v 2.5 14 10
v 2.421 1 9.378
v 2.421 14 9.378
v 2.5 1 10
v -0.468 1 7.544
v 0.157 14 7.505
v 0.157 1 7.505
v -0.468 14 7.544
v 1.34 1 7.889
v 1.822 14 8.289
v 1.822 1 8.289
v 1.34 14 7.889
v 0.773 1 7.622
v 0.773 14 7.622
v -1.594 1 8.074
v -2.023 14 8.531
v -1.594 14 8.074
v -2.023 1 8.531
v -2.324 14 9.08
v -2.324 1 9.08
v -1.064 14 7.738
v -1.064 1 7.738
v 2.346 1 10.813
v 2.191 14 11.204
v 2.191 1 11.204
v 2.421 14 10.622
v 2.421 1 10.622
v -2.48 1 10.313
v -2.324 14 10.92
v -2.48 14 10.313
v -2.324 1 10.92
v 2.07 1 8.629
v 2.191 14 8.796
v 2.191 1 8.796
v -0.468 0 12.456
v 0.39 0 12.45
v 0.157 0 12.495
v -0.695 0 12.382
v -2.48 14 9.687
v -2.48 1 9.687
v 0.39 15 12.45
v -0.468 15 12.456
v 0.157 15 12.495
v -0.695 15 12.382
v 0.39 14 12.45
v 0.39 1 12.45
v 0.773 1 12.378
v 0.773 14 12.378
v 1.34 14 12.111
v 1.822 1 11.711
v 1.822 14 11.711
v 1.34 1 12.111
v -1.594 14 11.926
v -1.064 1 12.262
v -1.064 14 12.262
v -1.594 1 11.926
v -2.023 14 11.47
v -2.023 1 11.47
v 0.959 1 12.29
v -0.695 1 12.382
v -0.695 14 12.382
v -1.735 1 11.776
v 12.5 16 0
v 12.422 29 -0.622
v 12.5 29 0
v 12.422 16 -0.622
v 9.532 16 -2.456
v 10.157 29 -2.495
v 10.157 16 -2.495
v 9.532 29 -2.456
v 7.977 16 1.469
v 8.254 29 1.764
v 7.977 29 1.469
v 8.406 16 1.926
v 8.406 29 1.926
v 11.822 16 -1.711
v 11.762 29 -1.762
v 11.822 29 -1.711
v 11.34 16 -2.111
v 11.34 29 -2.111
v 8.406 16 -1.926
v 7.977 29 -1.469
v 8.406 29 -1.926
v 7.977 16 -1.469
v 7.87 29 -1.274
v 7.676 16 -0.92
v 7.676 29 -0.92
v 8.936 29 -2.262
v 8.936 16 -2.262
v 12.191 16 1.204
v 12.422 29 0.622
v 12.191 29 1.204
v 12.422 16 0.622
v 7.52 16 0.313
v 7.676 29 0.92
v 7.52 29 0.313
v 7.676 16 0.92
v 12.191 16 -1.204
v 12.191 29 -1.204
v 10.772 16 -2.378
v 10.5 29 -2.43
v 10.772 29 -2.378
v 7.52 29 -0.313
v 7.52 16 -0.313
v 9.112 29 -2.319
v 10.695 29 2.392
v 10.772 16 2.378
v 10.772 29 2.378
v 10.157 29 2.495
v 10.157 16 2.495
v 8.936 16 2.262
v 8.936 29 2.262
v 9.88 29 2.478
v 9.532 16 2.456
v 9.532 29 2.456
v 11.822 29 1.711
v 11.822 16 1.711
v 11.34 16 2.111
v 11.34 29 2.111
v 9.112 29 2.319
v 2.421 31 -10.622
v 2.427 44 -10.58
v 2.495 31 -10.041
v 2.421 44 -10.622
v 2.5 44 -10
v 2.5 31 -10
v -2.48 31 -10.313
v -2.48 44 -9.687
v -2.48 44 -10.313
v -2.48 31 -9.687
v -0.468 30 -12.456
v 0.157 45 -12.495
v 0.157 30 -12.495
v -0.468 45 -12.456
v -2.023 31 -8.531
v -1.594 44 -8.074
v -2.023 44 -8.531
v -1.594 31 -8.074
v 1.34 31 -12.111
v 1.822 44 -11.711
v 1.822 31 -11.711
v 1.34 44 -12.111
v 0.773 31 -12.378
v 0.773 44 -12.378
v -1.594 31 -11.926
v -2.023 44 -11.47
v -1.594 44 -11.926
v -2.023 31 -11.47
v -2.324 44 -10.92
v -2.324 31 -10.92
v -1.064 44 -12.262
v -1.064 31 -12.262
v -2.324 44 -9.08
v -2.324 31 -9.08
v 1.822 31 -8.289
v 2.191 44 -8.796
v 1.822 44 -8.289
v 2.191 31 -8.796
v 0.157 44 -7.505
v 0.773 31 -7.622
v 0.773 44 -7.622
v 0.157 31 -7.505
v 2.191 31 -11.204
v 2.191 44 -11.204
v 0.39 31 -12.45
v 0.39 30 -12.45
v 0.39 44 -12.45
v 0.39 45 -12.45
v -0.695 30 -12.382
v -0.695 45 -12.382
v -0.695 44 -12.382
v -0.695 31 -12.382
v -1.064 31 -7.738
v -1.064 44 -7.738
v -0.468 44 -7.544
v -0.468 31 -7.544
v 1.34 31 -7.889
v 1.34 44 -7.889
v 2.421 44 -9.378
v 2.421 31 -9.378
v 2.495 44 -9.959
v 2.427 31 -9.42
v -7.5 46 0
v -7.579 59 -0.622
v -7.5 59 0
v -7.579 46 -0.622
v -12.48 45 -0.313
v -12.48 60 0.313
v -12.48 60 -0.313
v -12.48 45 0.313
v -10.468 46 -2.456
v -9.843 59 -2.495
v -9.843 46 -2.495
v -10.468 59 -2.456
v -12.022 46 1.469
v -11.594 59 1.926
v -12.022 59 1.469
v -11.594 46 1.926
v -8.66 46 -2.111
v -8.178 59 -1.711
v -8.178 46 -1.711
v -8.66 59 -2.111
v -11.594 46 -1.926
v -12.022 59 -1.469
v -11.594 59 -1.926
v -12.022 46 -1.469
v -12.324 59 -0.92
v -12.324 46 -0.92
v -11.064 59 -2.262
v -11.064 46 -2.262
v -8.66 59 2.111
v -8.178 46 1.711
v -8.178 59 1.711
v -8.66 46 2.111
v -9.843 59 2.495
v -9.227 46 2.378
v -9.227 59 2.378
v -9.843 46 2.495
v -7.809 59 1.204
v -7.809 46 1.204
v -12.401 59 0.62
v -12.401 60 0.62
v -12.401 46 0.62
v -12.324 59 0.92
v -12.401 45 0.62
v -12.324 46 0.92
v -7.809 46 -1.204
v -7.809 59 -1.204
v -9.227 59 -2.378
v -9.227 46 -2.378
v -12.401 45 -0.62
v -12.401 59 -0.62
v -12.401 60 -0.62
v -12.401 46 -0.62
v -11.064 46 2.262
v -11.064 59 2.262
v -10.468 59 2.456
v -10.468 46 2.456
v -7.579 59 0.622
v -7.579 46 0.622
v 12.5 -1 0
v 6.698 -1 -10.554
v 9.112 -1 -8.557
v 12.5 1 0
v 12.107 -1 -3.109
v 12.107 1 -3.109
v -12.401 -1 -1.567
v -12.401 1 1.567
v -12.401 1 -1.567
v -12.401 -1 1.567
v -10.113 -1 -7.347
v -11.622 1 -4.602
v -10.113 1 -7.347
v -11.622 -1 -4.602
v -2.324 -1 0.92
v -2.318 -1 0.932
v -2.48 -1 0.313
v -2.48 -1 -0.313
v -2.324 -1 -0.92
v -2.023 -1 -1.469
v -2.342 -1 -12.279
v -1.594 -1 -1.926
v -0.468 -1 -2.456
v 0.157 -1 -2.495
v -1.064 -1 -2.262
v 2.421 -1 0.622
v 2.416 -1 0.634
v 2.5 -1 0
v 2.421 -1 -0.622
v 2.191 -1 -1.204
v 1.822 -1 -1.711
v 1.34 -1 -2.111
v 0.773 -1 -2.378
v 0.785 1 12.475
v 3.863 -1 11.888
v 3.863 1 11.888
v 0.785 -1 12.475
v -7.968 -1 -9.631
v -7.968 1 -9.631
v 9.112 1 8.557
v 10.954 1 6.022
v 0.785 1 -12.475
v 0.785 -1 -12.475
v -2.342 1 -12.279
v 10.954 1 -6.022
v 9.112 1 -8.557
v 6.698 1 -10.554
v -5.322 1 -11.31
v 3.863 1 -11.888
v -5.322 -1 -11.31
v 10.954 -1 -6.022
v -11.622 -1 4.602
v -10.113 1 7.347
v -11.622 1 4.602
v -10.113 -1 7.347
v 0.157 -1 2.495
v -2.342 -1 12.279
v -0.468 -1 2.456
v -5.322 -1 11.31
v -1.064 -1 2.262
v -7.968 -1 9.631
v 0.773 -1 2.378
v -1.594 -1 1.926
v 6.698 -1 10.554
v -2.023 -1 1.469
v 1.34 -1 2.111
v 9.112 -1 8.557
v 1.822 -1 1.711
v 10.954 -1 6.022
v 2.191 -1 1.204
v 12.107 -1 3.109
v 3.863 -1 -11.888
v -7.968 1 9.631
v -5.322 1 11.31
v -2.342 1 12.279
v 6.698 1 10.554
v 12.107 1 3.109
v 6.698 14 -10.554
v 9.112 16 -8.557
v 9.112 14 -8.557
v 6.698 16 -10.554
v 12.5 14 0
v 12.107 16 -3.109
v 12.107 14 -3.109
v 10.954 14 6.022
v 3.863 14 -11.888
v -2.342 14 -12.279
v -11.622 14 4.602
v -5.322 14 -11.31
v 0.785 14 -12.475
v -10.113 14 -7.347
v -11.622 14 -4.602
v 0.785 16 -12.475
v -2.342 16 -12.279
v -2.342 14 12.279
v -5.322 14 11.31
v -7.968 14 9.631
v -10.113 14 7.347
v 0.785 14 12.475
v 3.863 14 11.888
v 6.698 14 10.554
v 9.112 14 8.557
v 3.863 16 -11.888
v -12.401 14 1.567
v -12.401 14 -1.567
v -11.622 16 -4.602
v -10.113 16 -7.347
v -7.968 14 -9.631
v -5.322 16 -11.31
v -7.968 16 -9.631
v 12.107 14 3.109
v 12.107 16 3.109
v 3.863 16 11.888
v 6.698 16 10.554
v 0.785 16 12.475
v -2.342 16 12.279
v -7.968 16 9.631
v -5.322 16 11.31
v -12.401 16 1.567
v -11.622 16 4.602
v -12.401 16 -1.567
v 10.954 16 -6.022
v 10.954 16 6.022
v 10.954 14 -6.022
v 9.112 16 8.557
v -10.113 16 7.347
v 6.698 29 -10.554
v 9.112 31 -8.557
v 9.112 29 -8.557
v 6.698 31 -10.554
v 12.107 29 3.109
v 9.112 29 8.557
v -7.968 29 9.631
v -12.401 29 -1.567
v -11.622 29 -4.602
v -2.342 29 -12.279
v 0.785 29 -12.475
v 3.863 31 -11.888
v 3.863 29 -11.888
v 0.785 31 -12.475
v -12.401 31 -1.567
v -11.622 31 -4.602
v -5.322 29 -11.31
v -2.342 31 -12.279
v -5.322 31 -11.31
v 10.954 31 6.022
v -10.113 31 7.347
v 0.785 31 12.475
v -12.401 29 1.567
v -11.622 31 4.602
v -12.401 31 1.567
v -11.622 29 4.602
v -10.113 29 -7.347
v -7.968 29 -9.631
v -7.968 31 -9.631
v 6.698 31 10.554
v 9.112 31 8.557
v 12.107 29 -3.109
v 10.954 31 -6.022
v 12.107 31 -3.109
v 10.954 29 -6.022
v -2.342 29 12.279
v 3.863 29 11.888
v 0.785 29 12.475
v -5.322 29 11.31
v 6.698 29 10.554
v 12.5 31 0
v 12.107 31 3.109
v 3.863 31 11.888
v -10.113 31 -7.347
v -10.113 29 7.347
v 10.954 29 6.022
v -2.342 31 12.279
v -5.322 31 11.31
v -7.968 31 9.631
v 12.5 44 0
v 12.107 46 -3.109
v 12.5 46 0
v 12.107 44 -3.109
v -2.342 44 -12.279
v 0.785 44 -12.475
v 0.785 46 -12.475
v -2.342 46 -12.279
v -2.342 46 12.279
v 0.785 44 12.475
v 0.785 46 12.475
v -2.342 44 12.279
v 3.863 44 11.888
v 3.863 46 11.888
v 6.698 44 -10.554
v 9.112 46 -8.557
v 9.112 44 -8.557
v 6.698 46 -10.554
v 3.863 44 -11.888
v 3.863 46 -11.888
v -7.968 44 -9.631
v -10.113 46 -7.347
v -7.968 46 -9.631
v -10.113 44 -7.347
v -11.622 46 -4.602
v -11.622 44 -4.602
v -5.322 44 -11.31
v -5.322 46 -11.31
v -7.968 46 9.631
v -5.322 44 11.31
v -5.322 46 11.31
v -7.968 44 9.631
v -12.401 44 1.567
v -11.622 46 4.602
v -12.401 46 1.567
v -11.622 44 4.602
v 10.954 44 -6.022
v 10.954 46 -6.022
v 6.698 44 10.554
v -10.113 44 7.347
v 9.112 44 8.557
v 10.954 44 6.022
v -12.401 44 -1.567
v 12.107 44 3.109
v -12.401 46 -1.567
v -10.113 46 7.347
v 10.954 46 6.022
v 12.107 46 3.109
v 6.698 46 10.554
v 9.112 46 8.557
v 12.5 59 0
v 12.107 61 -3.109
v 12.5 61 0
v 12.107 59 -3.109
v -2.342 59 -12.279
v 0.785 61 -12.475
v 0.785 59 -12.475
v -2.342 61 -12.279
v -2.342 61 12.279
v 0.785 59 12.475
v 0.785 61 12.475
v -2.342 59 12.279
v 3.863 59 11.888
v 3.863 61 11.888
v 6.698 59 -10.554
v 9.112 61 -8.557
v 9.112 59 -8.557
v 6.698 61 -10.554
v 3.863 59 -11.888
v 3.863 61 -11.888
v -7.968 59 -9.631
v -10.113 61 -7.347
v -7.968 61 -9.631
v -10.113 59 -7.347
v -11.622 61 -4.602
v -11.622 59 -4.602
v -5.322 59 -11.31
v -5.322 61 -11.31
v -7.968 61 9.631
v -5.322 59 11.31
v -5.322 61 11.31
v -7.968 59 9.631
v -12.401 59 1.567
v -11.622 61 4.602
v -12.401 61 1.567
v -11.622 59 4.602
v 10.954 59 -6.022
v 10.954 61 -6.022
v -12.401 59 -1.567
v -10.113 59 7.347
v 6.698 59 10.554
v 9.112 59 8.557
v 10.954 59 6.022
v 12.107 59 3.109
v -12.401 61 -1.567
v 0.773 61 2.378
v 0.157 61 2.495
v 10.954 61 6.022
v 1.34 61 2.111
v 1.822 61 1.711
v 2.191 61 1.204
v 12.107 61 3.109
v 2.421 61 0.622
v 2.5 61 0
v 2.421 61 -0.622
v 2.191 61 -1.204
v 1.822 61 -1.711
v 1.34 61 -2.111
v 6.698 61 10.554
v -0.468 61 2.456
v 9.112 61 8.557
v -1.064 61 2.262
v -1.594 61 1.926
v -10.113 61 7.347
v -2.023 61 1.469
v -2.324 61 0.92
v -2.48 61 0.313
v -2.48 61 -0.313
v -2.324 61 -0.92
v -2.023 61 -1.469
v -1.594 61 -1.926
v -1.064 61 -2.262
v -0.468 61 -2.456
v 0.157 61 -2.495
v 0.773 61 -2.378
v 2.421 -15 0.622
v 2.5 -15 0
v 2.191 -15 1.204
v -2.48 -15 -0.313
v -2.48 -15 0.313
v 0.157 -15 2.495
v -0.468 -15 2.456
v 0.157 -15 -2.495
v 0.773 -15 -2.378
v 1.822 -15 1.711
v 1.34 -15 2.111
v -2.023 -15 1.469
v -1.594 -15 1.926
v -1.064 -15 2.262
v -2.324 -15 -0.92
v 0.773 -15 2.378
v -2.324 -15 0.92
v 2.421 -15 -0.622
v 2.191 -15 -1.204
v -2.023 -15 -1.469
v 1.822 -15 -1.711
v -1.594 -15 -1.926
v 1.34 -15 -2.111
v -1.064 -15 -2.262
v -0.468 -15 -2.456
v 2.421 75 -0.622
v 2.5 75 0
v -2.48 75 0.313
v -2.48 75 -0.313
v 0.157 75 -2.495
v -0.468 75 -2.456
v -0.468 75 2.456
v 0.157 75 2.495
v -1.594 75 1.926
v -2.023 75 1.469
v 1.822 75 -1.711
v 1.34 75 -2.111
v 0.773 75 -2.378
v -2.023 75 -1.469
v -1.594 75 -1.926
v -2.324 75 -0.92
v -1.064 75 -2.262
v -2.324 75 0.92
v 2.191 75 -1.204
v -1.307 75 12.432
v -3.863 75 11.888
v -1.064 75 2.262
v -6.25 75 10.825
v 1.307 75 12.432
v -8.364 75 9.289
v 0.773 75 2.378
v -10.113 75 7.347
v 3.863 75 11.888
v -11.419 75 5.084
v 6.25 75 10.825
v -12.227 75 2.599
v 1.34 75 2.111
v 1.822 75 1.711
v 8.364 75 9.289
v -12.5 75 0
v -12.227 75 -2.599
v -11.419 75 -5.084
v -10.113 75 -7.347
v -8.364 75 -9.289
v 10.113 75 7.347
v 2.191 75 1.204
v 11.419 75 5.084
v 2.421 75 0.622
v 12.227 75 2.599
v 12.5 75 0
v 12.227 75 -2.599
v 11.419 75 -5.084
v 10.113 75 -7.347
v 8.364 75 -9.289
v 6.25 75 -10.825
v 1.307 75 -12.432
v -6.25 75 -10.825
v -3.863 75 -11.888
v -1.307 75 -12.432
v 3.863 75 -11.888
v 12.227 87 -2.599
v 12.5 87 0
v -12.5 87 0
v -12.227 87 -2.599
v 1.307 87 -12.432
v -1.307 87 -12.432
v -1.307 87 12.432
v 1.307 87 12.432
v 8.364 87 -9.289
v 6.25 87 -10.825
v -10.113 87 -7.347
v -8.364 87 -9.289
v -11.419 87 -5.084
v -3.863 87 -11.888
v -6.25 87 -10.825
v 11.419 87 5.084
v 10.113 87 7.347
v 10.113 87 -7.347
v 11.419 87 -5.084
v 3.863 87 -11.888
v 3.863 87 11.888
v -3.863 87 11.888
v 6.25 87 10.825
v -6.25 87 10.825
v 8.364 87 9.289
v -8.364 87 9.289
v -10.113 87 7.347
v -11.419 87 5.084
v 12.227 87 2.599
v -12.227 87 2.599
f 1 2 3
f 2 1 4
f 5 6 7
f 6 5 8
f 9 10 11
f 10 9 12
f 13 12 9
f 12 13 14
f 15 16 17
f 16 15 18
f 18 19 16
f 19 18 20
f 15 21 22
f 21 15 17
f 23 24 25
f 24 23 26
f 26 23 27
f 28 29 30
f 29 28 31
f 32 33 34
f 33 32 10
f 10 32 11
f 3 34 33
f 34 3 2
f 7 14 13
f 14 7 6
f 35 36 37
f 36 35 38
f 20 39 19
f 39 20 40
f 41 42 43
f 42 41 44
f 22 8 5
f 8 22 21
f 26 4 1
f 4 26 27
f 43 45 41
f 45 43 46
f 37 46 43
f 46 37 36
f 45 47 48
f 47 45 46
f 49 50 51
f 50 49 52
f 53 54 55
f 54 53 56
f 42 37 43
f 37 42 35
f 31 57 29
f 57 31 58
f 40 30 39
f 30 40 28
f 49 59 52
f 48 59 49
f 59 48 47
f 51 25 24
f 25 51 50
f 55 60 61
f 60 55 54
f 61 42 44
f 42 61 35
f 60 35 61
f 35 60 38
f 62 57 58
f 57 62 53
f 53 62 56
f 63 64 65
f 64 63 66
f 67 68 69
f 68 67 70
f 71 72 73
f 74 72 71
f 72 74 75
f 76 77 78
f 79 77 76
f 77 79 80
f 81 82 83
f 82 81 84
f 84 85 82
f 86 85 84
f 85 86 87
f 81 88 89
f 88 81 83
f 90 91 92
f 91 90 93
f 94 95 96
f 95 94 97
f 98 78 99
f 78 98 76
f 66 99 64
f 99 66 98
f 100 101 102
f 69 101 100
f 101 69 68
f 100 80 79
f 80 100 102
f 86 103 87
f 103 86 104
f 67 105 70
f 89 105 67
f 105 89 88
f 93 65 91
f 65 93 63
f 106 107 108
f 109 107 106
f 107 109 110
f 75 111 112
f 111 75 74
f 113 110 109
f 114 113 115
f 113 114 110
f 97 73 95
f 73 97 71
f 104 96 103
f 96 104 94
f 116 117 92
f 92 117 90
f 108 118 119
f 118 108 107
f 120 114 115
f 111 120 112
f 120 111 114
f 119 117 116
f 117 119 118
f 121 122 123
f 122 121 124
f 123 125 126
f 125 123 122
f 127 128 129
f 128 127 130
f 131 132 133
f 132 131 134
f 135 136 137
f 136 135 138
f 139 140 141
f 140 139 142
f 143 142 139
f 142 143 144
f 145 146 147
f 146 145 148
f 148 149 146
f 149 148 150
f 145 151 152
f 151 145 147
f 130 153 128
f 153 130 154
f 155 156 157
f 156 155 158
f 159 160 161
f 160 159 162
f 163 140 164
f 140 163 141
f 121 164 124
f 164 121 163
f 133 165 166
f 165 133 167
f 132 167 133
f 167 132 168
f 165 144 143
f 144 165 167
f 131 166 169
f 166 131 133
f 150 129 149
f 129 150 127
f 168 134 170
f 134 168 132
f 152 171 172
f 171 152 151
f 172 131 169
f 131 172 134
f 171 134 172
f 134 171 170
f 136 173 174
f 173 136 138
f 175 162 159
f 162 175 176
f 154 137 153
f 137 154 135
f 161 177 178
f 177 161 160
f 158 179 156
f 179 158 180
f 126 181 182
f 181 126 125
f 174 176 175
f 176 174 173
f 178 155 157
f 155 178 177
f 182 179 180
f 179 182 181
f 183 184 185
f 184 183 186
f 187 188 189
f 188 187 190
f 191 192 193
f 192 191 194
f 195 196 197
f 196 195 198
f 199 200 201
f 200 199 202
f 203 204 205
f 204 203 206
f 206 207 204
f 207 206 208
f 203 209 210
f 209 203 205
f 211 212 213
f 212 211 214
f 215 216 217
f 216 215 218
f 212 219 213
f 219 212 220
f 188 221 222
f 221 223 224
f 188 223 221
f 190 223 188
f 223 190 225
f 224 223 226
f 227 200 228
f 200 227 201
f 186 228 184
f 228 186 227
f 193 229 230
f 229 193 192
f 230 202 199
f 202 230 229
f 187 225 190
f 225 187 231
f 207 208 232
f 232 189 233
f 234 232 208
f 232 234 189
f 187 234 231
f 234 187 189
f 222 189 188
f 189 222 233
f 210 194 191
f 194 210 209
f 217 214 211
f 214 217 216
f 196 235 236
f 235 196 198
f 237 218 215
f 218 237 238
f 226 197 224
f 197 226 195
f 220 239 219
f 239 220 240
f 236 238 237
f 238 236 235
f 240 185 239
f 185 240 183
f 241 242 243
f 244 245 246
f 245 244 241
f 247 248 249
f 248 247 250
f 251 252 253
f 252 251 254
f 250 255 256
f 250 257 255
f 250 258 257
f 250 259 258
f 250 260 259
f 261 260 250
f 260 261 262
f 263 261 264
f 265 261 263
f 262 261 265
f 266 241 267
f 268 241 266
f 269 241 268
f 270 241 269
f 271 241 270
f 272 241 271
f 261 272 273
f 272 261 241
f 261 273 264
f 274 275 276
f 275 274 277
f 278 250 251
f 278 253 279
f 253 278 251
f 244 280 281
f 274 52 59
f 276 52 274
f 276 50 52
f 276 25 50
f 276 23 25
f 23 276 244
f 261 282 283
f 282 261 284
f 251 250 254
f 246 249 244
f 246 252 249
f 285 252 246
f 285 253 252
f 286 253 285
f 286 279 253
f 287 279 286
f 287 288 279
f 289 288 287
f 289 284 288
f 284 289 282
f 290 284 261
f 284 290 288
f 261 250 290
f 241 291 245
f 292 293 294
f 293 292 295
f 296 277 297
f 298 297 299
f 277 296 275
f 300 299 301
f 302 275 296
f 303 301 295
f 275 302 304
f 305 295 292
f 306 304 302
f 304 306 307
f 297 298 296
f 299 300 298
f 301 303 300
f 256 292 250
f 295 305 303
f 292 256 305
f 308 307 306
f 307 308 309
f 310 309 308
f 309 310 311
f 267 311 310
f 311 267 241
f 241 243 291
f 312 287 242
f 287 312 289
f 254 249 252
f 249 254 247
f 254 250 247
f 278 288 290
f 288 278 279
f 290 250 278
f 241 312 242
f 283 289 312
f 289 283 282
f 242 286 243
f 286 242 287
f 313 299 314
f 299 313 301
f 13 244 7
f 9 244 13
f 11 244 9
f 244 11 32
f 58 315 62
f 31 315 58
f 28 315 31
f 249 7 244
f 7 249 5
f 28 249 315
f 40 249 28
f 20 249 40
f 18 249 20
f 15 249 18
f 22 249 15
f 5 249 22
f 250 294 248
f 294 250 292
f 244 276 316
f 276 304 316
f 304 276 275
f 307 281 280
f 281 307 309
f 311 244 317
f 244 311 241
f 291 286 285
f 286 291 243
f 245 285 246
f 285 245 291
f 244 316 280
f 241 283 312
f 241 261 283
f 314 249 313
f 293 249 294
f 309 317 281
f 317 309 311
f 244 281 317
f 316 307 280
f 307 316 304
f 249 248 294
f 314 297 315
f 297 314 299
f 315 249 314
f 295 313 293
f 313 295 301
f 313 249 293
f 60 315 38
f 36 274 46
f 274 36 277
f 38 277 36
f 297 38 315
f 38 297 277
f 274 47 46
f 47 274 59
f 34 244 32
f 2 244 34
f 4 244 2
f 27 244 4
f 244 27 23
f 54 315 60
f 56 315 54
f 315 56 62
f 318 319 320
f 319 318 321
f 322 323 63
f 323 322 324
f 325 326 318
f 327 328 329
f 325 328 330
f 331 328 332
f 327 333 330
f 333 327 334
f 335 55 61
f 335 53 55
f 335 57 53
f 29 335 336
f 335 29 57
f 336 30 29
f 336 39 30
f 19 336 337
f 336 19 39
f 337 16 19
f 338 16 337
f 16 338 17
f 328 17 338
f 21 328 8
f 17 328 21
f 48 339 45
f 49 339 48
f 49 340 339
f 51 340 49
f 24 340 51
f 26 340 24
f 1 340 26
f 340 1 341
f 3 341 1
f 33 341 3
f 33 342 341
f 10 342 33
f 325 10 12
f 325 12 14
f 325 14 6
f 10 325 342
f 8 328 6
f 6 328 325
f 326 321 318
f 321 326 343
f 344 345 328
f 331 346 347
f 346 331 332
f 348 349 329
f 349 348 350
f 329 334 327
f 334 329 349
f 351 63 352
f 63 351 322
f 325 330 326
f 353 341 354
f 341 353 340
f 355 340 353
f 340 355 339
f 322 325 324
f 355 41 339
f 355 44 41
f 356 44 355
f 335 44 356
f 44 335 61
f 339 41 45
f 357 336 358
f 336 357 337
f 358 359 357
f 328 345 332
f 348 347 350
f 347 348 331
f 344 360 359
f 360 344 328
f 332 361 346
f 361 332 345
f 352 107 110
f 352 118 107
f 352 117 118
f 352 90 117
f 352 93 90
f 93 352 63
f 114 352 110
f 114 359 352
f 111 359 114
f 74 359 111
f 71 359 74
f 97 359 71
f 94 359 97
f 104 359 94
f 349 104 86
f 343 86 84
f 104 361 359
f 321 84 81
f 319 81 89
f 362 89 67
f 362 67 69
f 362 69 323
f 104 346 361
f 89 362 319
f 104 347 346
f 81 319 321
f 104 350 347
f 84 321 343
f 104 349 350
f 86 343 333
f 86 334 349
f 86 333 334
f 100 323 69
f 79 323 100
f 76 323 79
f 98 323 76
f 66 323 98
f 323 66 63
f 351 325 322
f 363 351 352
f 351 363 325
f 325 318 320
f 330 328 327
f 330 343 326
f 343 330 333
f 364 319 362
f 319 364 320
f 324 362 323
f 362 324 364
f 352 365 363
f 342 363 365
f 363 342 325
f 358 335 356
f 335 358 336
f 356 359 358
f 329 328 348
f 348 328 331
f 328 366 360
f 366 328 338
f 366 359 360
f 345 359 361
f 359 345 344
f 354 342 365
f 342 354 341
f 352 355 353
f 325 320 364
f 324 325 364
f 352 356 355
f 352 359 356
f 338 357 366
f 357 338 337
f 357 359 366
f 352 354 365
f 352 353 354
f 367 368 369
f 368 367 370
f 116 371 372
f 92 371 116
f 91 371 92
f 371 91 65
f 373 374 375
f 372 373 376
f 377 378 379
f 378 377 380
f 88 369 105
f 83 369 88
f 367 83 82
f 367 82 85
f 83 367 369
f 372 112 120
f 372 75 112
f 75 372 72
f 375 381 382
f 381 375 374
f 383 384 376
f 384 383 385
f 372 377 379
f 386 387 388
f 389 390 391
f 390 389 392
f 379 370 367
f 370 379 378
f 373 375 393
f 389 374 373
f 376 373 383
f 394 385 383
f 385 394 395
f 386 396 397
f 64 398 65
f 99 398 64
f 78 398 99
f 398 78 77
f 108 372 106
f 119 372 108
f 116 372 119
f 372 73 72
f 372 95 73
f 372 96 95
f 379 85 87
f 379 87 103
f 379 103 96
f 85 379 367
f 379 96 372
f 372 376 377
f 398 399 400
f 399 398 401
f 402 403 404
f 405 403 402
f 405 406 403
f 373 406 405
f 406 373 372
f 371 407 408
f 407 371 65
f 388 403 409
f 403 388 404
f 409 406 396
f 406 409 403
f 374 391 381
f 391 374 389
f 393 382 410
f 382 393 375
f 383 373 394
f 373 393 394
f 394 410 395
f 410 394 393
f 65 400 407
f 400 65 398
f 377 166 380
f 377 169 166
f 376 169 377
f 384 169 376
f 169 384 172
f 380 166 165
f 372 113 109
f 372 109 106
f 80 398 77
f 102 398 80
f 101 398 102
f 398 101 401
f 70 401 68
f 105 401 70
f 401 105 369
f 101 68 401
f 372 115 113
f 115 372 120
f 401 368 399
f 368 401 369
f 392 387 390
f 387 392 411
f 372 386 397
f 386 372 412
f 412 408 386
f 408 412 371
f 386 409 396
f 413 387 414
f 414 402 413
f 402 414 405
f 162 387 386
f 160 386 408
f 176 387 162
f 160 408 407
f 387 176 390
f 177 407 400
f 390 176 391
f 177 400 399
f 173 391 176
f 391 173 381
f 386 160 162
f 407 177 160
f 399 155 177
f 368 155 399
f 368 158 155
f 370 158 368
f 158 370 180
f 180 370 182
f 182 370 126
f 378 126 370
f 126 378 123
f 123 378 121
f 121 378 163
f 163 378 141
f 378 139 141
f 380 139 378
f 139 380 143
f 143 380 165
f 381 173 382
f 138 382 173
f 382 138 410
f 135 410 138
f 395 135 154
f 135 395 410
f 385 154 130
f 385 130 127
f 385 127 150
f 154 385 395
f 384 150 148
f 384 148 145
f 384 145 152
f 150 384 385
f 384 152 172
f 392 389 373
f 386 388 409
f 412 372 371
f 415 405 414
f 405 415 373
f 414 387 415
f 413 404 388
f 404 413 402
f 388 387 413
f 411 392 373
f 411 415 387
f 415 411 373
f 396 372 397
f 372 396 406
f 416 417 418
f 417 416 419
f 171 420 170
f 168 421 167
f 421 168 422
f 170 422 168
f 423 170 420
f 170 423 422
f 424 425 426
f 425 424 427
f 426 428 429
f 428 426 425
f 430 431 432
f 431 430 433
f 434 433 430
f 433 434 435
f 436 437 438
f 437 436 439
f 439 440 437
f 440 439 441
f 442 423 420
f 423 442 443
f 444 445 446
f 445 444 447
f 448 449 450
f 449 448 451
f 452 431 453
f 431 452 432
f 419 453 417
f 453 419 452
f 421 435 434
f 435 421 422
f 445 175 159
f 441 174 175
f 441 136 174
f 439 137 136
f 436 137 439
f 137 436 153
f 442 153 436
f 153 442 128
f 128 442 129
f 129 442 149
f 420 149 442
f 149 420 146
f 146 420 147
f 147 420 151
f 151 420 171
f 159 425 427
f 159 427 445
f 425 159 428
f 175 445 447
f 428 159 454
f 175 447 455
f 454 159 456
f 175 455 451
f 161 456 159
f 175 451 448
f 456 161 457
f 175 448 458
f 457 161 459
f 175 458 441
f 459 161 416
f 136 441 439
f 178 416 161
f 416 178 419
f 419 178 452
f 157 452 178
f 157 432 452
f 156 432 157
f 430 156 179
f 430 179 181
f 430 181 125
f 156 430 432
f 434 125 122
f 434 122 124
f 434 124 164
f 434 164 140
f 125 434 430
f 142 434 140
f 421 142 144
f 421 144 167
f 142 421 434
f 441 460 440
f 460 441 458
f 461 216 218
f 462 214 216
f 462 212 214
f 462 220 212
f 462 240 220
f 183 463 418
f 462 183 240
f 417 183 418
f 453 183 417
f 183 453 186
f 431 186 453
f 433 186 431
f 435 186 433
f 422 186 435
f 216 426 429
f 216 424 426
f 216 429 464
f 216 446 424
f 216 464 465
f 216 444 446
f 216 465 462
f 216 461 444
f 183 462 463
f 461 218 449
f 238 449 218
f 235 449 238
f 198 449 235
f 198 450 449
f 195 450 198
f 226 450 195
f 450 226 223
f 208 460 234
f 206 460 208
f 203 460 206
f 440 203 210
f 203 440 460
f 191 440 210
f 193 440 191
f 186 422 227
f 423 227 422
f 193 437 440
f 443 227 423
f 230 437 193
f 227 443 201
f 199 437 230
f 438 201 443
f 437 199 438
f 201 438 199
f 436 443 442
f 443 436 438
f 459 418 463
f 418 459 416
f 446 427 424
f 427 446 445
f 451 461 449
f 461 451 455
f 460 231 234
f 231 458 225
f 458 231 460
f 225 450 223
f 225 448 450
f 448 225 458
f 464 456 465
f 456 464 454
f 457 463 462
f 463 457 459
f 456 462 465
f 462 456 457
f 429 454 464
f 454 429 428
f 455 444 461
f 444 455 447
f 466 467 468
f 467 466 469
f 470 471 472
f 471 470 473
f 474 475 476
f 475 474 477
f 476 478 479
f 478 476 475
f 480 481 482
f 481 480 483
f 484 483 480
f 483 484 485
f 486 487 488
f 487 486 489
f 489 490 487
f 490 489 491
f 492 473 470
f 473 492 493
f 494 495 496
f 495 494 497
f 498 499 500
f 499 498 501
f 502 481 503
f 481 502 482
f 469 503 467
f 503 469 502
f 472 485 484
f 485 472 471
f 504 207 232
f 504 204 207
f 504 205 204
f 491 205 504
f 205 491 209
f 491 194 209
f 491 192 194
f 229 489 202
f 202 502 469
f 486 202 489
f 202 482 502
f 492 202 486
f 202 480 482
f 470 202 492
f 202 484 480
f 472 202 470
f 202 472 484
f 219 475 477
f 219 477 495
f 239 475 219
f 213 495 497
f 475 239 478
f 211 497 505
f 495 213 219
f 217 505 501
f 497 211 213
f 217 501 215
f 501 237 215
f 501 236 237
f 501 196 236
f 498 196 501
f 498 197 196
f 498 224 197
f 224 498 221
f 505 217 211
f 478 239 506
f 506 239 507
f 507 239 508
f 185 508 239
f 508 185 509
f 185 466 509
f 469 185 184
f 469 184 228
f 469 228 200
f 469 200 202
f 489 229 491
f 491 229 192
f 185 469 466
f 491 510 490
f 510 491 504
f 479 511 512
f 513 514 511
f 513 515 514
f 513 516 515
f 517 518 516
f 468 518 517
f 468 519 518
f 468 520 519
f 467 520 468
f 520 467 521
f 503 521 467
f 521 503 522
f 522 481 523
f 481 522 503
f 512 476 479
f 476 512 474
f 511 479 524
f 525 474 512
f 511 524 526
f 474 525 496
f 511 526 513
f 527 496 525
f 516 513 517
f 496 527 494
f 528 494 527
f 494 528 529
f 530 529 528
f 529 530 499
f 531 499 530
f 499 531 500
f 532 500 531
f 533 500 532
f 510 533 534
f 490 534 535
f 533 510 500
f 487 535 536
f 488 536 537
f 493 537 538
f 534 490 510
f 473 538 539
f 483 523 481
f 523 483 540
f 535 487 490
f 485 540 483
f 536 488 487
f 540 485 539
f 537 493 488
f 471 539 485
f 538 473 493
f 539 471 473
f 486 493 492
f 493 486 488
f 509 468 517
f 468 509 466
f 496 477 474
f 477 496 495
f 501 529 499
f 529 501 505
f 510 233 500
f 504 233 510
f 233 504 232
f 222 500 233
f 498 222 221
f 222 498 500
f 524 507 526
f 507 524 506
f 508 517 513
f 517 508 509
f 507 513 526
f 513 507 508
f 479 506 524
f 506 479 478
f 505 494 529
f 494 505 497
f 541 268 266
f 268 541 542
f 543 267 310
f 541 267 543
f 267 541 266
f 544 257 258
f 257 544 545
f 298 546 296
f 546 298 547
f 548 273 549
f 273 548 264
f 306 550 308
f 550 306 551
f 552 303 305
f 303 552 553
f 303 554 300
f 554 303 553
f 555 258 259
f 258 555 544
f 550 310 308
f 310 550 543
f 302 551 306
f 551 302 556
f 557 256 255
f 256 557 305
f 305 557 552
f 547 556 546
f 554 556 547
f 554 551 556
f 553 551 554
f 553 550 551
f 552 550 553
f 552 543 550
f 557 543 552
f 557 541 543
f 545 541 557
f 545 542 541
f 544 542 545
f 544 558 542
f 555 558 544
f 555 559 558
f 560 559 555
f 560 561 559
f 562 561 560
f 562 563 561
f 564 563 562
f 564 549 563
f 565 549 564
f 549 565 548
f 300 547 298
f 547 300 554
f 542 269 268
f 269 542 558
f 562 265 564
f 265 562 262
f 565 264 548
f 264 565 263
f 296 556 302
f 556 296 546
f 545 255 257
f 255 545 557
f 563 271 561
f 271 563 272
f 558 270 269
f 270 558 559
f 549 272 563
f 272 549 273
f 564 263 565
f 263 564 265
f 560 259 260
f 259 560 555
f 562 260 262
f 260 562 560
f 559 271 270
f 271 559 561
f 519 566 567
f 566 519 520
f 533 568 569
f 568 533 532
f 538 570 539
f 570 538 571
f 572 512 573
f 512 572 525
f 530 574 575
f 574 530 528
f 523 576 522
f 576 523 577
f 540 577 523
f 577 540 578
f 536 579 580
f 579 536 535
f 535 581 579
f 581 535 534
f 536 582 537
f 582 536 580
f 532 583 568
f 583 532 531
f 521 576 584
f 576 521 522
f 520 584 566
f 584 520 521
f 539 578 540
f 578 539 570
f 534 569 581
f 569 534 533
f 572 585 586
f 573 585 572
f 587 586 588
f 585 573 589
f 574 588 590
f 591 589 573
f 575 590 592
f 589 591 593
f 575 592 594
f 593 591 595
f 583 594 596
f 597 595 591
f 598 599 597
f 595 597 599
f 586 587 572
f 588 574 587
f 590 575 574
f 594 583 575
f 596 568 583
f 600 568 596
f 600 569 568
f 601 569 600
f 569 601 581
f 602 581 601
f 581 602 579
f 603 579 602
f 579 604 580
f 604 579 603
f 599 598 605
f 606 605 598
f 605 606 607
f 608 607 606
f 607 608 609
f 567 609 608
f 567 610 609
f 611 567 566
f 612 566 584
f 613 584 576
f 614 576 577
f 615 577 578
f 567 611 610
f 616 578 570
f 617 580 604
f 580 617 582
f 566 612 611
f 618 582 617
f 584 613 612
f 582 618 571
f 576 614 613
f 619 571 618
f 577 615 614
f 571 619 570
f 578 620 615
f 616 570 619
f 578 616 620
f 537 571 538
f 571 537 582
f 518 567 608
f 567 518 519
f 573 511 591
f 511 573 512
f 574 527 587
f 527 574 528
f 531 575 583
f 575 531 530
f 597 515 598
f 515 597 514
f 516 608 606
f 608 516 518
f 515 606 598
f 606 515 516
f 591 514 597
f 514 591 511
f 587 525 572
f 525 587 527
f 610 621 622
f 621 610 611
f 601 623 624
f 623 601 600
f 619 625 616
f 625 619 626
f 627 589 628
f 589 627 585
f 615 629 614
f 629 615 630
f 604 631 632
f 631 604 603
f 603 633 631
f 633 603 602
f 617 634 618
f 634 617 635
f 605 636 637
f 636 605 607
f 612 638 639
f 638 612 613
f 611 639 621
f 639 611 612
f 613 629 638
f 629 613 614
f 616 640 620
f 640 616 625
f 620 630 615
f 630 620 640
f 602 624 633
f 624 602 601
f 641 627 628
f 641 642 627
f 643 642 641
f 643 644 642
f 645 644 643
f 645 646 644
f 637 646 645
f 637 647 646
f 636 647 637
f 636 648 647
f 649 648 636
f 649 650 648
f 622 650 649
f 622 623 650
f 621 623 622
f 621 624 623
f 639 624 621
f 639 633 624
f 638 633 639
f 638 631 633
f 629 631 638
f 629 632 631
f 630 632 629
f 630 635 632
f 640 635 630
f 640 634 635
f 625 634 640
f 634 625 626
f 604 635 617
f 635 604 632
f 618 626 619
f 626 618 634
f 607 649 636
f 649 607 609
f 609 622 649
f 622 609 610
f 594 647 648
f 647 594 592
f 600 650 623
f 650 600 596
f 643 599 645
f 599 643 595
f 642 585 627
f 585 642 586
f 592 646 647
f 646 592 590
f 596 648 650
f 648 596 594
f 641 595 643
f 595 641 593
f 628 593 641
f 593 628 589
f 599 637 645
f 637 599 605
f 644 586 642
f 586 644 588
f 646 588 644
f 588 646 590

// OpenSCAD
quality=25;

gap_dist=15;

union()
{

//bars
piston_dist=10;
bar_radius=2.5;
    
translate([0,0,piston_dist]) rotate([-90,0,0]) cylinder(r=bar_radius,h=gap_dist,$fn=quality);
translate([piston_dist,gap_dist,0]) rotate([-90,0,0]) cylinder(r=bar_radius,h=gap_dist,$fn=quality);
translate([0,gap_dist*2,-piston_dist]) rotate([-90,0,0]) cylinder(r=bar_radius,h=gap_dist,$fn=quality);
translate([-piston_dist,gap_dist*3,0]) rotate([-90,0,0]) cylinder(r=bar_radius,h=gap_dist,$fn=quality);



//gears here
gear_thickness=2;
    
translate([0,0-gear_thickness/2,0]) rotate([-90,0,0]) cylinder(r=piston_dist+bar_radius,h=gear_thickness,$fn=quality);
translate([0,gap_dist-gear_thickness/2,0]) rotate([-90,0,0]) cylinder(r=piston_dist+bar_radius,h=gear_thickness,$fn=quality);
translate([0,gap_dist*2-gear_thickness/2,0]) rotate([-90,0,0]) cylinder(r=piston_dist+bar_radius,h=gear_thickness,$fn=quality);
translate([0,gap_dist*3-gear_thickness/2,0]) rotate([-90,0,0]) cylinder(r=piston_dist+bar_radius,h=gear_thickness,$fn=quality);
translate([0,gap_dist*4-gear_thickness/2,0]) rotate([-90,0,0]) cylinder(r=piston_dist+bar_radius,h=gear_thickness,$fn=quality);



//attachment end joints
joint_radius=2.5;
joint_height=15;

rotate([90,0,0]) cylinder(r=joint_radius,h=joint_height,$fn=quality);
translate([0,gap_dist*4,0]) rotate([-90,0,0]) cylinder(r=joint_radius,h=joint_height,$fn=quality);


wheel_radius=piston_dist+bar_radius;
wheel_height=12;
groove_height=8;
//groove_thickness;

//Belt wheel
    difference()
    {
        translate([0,gap_dist*4+joint_height,0]) rotate([-90,0,0]) cylinder(h=wheel_height,r=wheel_radius);
    }
}
